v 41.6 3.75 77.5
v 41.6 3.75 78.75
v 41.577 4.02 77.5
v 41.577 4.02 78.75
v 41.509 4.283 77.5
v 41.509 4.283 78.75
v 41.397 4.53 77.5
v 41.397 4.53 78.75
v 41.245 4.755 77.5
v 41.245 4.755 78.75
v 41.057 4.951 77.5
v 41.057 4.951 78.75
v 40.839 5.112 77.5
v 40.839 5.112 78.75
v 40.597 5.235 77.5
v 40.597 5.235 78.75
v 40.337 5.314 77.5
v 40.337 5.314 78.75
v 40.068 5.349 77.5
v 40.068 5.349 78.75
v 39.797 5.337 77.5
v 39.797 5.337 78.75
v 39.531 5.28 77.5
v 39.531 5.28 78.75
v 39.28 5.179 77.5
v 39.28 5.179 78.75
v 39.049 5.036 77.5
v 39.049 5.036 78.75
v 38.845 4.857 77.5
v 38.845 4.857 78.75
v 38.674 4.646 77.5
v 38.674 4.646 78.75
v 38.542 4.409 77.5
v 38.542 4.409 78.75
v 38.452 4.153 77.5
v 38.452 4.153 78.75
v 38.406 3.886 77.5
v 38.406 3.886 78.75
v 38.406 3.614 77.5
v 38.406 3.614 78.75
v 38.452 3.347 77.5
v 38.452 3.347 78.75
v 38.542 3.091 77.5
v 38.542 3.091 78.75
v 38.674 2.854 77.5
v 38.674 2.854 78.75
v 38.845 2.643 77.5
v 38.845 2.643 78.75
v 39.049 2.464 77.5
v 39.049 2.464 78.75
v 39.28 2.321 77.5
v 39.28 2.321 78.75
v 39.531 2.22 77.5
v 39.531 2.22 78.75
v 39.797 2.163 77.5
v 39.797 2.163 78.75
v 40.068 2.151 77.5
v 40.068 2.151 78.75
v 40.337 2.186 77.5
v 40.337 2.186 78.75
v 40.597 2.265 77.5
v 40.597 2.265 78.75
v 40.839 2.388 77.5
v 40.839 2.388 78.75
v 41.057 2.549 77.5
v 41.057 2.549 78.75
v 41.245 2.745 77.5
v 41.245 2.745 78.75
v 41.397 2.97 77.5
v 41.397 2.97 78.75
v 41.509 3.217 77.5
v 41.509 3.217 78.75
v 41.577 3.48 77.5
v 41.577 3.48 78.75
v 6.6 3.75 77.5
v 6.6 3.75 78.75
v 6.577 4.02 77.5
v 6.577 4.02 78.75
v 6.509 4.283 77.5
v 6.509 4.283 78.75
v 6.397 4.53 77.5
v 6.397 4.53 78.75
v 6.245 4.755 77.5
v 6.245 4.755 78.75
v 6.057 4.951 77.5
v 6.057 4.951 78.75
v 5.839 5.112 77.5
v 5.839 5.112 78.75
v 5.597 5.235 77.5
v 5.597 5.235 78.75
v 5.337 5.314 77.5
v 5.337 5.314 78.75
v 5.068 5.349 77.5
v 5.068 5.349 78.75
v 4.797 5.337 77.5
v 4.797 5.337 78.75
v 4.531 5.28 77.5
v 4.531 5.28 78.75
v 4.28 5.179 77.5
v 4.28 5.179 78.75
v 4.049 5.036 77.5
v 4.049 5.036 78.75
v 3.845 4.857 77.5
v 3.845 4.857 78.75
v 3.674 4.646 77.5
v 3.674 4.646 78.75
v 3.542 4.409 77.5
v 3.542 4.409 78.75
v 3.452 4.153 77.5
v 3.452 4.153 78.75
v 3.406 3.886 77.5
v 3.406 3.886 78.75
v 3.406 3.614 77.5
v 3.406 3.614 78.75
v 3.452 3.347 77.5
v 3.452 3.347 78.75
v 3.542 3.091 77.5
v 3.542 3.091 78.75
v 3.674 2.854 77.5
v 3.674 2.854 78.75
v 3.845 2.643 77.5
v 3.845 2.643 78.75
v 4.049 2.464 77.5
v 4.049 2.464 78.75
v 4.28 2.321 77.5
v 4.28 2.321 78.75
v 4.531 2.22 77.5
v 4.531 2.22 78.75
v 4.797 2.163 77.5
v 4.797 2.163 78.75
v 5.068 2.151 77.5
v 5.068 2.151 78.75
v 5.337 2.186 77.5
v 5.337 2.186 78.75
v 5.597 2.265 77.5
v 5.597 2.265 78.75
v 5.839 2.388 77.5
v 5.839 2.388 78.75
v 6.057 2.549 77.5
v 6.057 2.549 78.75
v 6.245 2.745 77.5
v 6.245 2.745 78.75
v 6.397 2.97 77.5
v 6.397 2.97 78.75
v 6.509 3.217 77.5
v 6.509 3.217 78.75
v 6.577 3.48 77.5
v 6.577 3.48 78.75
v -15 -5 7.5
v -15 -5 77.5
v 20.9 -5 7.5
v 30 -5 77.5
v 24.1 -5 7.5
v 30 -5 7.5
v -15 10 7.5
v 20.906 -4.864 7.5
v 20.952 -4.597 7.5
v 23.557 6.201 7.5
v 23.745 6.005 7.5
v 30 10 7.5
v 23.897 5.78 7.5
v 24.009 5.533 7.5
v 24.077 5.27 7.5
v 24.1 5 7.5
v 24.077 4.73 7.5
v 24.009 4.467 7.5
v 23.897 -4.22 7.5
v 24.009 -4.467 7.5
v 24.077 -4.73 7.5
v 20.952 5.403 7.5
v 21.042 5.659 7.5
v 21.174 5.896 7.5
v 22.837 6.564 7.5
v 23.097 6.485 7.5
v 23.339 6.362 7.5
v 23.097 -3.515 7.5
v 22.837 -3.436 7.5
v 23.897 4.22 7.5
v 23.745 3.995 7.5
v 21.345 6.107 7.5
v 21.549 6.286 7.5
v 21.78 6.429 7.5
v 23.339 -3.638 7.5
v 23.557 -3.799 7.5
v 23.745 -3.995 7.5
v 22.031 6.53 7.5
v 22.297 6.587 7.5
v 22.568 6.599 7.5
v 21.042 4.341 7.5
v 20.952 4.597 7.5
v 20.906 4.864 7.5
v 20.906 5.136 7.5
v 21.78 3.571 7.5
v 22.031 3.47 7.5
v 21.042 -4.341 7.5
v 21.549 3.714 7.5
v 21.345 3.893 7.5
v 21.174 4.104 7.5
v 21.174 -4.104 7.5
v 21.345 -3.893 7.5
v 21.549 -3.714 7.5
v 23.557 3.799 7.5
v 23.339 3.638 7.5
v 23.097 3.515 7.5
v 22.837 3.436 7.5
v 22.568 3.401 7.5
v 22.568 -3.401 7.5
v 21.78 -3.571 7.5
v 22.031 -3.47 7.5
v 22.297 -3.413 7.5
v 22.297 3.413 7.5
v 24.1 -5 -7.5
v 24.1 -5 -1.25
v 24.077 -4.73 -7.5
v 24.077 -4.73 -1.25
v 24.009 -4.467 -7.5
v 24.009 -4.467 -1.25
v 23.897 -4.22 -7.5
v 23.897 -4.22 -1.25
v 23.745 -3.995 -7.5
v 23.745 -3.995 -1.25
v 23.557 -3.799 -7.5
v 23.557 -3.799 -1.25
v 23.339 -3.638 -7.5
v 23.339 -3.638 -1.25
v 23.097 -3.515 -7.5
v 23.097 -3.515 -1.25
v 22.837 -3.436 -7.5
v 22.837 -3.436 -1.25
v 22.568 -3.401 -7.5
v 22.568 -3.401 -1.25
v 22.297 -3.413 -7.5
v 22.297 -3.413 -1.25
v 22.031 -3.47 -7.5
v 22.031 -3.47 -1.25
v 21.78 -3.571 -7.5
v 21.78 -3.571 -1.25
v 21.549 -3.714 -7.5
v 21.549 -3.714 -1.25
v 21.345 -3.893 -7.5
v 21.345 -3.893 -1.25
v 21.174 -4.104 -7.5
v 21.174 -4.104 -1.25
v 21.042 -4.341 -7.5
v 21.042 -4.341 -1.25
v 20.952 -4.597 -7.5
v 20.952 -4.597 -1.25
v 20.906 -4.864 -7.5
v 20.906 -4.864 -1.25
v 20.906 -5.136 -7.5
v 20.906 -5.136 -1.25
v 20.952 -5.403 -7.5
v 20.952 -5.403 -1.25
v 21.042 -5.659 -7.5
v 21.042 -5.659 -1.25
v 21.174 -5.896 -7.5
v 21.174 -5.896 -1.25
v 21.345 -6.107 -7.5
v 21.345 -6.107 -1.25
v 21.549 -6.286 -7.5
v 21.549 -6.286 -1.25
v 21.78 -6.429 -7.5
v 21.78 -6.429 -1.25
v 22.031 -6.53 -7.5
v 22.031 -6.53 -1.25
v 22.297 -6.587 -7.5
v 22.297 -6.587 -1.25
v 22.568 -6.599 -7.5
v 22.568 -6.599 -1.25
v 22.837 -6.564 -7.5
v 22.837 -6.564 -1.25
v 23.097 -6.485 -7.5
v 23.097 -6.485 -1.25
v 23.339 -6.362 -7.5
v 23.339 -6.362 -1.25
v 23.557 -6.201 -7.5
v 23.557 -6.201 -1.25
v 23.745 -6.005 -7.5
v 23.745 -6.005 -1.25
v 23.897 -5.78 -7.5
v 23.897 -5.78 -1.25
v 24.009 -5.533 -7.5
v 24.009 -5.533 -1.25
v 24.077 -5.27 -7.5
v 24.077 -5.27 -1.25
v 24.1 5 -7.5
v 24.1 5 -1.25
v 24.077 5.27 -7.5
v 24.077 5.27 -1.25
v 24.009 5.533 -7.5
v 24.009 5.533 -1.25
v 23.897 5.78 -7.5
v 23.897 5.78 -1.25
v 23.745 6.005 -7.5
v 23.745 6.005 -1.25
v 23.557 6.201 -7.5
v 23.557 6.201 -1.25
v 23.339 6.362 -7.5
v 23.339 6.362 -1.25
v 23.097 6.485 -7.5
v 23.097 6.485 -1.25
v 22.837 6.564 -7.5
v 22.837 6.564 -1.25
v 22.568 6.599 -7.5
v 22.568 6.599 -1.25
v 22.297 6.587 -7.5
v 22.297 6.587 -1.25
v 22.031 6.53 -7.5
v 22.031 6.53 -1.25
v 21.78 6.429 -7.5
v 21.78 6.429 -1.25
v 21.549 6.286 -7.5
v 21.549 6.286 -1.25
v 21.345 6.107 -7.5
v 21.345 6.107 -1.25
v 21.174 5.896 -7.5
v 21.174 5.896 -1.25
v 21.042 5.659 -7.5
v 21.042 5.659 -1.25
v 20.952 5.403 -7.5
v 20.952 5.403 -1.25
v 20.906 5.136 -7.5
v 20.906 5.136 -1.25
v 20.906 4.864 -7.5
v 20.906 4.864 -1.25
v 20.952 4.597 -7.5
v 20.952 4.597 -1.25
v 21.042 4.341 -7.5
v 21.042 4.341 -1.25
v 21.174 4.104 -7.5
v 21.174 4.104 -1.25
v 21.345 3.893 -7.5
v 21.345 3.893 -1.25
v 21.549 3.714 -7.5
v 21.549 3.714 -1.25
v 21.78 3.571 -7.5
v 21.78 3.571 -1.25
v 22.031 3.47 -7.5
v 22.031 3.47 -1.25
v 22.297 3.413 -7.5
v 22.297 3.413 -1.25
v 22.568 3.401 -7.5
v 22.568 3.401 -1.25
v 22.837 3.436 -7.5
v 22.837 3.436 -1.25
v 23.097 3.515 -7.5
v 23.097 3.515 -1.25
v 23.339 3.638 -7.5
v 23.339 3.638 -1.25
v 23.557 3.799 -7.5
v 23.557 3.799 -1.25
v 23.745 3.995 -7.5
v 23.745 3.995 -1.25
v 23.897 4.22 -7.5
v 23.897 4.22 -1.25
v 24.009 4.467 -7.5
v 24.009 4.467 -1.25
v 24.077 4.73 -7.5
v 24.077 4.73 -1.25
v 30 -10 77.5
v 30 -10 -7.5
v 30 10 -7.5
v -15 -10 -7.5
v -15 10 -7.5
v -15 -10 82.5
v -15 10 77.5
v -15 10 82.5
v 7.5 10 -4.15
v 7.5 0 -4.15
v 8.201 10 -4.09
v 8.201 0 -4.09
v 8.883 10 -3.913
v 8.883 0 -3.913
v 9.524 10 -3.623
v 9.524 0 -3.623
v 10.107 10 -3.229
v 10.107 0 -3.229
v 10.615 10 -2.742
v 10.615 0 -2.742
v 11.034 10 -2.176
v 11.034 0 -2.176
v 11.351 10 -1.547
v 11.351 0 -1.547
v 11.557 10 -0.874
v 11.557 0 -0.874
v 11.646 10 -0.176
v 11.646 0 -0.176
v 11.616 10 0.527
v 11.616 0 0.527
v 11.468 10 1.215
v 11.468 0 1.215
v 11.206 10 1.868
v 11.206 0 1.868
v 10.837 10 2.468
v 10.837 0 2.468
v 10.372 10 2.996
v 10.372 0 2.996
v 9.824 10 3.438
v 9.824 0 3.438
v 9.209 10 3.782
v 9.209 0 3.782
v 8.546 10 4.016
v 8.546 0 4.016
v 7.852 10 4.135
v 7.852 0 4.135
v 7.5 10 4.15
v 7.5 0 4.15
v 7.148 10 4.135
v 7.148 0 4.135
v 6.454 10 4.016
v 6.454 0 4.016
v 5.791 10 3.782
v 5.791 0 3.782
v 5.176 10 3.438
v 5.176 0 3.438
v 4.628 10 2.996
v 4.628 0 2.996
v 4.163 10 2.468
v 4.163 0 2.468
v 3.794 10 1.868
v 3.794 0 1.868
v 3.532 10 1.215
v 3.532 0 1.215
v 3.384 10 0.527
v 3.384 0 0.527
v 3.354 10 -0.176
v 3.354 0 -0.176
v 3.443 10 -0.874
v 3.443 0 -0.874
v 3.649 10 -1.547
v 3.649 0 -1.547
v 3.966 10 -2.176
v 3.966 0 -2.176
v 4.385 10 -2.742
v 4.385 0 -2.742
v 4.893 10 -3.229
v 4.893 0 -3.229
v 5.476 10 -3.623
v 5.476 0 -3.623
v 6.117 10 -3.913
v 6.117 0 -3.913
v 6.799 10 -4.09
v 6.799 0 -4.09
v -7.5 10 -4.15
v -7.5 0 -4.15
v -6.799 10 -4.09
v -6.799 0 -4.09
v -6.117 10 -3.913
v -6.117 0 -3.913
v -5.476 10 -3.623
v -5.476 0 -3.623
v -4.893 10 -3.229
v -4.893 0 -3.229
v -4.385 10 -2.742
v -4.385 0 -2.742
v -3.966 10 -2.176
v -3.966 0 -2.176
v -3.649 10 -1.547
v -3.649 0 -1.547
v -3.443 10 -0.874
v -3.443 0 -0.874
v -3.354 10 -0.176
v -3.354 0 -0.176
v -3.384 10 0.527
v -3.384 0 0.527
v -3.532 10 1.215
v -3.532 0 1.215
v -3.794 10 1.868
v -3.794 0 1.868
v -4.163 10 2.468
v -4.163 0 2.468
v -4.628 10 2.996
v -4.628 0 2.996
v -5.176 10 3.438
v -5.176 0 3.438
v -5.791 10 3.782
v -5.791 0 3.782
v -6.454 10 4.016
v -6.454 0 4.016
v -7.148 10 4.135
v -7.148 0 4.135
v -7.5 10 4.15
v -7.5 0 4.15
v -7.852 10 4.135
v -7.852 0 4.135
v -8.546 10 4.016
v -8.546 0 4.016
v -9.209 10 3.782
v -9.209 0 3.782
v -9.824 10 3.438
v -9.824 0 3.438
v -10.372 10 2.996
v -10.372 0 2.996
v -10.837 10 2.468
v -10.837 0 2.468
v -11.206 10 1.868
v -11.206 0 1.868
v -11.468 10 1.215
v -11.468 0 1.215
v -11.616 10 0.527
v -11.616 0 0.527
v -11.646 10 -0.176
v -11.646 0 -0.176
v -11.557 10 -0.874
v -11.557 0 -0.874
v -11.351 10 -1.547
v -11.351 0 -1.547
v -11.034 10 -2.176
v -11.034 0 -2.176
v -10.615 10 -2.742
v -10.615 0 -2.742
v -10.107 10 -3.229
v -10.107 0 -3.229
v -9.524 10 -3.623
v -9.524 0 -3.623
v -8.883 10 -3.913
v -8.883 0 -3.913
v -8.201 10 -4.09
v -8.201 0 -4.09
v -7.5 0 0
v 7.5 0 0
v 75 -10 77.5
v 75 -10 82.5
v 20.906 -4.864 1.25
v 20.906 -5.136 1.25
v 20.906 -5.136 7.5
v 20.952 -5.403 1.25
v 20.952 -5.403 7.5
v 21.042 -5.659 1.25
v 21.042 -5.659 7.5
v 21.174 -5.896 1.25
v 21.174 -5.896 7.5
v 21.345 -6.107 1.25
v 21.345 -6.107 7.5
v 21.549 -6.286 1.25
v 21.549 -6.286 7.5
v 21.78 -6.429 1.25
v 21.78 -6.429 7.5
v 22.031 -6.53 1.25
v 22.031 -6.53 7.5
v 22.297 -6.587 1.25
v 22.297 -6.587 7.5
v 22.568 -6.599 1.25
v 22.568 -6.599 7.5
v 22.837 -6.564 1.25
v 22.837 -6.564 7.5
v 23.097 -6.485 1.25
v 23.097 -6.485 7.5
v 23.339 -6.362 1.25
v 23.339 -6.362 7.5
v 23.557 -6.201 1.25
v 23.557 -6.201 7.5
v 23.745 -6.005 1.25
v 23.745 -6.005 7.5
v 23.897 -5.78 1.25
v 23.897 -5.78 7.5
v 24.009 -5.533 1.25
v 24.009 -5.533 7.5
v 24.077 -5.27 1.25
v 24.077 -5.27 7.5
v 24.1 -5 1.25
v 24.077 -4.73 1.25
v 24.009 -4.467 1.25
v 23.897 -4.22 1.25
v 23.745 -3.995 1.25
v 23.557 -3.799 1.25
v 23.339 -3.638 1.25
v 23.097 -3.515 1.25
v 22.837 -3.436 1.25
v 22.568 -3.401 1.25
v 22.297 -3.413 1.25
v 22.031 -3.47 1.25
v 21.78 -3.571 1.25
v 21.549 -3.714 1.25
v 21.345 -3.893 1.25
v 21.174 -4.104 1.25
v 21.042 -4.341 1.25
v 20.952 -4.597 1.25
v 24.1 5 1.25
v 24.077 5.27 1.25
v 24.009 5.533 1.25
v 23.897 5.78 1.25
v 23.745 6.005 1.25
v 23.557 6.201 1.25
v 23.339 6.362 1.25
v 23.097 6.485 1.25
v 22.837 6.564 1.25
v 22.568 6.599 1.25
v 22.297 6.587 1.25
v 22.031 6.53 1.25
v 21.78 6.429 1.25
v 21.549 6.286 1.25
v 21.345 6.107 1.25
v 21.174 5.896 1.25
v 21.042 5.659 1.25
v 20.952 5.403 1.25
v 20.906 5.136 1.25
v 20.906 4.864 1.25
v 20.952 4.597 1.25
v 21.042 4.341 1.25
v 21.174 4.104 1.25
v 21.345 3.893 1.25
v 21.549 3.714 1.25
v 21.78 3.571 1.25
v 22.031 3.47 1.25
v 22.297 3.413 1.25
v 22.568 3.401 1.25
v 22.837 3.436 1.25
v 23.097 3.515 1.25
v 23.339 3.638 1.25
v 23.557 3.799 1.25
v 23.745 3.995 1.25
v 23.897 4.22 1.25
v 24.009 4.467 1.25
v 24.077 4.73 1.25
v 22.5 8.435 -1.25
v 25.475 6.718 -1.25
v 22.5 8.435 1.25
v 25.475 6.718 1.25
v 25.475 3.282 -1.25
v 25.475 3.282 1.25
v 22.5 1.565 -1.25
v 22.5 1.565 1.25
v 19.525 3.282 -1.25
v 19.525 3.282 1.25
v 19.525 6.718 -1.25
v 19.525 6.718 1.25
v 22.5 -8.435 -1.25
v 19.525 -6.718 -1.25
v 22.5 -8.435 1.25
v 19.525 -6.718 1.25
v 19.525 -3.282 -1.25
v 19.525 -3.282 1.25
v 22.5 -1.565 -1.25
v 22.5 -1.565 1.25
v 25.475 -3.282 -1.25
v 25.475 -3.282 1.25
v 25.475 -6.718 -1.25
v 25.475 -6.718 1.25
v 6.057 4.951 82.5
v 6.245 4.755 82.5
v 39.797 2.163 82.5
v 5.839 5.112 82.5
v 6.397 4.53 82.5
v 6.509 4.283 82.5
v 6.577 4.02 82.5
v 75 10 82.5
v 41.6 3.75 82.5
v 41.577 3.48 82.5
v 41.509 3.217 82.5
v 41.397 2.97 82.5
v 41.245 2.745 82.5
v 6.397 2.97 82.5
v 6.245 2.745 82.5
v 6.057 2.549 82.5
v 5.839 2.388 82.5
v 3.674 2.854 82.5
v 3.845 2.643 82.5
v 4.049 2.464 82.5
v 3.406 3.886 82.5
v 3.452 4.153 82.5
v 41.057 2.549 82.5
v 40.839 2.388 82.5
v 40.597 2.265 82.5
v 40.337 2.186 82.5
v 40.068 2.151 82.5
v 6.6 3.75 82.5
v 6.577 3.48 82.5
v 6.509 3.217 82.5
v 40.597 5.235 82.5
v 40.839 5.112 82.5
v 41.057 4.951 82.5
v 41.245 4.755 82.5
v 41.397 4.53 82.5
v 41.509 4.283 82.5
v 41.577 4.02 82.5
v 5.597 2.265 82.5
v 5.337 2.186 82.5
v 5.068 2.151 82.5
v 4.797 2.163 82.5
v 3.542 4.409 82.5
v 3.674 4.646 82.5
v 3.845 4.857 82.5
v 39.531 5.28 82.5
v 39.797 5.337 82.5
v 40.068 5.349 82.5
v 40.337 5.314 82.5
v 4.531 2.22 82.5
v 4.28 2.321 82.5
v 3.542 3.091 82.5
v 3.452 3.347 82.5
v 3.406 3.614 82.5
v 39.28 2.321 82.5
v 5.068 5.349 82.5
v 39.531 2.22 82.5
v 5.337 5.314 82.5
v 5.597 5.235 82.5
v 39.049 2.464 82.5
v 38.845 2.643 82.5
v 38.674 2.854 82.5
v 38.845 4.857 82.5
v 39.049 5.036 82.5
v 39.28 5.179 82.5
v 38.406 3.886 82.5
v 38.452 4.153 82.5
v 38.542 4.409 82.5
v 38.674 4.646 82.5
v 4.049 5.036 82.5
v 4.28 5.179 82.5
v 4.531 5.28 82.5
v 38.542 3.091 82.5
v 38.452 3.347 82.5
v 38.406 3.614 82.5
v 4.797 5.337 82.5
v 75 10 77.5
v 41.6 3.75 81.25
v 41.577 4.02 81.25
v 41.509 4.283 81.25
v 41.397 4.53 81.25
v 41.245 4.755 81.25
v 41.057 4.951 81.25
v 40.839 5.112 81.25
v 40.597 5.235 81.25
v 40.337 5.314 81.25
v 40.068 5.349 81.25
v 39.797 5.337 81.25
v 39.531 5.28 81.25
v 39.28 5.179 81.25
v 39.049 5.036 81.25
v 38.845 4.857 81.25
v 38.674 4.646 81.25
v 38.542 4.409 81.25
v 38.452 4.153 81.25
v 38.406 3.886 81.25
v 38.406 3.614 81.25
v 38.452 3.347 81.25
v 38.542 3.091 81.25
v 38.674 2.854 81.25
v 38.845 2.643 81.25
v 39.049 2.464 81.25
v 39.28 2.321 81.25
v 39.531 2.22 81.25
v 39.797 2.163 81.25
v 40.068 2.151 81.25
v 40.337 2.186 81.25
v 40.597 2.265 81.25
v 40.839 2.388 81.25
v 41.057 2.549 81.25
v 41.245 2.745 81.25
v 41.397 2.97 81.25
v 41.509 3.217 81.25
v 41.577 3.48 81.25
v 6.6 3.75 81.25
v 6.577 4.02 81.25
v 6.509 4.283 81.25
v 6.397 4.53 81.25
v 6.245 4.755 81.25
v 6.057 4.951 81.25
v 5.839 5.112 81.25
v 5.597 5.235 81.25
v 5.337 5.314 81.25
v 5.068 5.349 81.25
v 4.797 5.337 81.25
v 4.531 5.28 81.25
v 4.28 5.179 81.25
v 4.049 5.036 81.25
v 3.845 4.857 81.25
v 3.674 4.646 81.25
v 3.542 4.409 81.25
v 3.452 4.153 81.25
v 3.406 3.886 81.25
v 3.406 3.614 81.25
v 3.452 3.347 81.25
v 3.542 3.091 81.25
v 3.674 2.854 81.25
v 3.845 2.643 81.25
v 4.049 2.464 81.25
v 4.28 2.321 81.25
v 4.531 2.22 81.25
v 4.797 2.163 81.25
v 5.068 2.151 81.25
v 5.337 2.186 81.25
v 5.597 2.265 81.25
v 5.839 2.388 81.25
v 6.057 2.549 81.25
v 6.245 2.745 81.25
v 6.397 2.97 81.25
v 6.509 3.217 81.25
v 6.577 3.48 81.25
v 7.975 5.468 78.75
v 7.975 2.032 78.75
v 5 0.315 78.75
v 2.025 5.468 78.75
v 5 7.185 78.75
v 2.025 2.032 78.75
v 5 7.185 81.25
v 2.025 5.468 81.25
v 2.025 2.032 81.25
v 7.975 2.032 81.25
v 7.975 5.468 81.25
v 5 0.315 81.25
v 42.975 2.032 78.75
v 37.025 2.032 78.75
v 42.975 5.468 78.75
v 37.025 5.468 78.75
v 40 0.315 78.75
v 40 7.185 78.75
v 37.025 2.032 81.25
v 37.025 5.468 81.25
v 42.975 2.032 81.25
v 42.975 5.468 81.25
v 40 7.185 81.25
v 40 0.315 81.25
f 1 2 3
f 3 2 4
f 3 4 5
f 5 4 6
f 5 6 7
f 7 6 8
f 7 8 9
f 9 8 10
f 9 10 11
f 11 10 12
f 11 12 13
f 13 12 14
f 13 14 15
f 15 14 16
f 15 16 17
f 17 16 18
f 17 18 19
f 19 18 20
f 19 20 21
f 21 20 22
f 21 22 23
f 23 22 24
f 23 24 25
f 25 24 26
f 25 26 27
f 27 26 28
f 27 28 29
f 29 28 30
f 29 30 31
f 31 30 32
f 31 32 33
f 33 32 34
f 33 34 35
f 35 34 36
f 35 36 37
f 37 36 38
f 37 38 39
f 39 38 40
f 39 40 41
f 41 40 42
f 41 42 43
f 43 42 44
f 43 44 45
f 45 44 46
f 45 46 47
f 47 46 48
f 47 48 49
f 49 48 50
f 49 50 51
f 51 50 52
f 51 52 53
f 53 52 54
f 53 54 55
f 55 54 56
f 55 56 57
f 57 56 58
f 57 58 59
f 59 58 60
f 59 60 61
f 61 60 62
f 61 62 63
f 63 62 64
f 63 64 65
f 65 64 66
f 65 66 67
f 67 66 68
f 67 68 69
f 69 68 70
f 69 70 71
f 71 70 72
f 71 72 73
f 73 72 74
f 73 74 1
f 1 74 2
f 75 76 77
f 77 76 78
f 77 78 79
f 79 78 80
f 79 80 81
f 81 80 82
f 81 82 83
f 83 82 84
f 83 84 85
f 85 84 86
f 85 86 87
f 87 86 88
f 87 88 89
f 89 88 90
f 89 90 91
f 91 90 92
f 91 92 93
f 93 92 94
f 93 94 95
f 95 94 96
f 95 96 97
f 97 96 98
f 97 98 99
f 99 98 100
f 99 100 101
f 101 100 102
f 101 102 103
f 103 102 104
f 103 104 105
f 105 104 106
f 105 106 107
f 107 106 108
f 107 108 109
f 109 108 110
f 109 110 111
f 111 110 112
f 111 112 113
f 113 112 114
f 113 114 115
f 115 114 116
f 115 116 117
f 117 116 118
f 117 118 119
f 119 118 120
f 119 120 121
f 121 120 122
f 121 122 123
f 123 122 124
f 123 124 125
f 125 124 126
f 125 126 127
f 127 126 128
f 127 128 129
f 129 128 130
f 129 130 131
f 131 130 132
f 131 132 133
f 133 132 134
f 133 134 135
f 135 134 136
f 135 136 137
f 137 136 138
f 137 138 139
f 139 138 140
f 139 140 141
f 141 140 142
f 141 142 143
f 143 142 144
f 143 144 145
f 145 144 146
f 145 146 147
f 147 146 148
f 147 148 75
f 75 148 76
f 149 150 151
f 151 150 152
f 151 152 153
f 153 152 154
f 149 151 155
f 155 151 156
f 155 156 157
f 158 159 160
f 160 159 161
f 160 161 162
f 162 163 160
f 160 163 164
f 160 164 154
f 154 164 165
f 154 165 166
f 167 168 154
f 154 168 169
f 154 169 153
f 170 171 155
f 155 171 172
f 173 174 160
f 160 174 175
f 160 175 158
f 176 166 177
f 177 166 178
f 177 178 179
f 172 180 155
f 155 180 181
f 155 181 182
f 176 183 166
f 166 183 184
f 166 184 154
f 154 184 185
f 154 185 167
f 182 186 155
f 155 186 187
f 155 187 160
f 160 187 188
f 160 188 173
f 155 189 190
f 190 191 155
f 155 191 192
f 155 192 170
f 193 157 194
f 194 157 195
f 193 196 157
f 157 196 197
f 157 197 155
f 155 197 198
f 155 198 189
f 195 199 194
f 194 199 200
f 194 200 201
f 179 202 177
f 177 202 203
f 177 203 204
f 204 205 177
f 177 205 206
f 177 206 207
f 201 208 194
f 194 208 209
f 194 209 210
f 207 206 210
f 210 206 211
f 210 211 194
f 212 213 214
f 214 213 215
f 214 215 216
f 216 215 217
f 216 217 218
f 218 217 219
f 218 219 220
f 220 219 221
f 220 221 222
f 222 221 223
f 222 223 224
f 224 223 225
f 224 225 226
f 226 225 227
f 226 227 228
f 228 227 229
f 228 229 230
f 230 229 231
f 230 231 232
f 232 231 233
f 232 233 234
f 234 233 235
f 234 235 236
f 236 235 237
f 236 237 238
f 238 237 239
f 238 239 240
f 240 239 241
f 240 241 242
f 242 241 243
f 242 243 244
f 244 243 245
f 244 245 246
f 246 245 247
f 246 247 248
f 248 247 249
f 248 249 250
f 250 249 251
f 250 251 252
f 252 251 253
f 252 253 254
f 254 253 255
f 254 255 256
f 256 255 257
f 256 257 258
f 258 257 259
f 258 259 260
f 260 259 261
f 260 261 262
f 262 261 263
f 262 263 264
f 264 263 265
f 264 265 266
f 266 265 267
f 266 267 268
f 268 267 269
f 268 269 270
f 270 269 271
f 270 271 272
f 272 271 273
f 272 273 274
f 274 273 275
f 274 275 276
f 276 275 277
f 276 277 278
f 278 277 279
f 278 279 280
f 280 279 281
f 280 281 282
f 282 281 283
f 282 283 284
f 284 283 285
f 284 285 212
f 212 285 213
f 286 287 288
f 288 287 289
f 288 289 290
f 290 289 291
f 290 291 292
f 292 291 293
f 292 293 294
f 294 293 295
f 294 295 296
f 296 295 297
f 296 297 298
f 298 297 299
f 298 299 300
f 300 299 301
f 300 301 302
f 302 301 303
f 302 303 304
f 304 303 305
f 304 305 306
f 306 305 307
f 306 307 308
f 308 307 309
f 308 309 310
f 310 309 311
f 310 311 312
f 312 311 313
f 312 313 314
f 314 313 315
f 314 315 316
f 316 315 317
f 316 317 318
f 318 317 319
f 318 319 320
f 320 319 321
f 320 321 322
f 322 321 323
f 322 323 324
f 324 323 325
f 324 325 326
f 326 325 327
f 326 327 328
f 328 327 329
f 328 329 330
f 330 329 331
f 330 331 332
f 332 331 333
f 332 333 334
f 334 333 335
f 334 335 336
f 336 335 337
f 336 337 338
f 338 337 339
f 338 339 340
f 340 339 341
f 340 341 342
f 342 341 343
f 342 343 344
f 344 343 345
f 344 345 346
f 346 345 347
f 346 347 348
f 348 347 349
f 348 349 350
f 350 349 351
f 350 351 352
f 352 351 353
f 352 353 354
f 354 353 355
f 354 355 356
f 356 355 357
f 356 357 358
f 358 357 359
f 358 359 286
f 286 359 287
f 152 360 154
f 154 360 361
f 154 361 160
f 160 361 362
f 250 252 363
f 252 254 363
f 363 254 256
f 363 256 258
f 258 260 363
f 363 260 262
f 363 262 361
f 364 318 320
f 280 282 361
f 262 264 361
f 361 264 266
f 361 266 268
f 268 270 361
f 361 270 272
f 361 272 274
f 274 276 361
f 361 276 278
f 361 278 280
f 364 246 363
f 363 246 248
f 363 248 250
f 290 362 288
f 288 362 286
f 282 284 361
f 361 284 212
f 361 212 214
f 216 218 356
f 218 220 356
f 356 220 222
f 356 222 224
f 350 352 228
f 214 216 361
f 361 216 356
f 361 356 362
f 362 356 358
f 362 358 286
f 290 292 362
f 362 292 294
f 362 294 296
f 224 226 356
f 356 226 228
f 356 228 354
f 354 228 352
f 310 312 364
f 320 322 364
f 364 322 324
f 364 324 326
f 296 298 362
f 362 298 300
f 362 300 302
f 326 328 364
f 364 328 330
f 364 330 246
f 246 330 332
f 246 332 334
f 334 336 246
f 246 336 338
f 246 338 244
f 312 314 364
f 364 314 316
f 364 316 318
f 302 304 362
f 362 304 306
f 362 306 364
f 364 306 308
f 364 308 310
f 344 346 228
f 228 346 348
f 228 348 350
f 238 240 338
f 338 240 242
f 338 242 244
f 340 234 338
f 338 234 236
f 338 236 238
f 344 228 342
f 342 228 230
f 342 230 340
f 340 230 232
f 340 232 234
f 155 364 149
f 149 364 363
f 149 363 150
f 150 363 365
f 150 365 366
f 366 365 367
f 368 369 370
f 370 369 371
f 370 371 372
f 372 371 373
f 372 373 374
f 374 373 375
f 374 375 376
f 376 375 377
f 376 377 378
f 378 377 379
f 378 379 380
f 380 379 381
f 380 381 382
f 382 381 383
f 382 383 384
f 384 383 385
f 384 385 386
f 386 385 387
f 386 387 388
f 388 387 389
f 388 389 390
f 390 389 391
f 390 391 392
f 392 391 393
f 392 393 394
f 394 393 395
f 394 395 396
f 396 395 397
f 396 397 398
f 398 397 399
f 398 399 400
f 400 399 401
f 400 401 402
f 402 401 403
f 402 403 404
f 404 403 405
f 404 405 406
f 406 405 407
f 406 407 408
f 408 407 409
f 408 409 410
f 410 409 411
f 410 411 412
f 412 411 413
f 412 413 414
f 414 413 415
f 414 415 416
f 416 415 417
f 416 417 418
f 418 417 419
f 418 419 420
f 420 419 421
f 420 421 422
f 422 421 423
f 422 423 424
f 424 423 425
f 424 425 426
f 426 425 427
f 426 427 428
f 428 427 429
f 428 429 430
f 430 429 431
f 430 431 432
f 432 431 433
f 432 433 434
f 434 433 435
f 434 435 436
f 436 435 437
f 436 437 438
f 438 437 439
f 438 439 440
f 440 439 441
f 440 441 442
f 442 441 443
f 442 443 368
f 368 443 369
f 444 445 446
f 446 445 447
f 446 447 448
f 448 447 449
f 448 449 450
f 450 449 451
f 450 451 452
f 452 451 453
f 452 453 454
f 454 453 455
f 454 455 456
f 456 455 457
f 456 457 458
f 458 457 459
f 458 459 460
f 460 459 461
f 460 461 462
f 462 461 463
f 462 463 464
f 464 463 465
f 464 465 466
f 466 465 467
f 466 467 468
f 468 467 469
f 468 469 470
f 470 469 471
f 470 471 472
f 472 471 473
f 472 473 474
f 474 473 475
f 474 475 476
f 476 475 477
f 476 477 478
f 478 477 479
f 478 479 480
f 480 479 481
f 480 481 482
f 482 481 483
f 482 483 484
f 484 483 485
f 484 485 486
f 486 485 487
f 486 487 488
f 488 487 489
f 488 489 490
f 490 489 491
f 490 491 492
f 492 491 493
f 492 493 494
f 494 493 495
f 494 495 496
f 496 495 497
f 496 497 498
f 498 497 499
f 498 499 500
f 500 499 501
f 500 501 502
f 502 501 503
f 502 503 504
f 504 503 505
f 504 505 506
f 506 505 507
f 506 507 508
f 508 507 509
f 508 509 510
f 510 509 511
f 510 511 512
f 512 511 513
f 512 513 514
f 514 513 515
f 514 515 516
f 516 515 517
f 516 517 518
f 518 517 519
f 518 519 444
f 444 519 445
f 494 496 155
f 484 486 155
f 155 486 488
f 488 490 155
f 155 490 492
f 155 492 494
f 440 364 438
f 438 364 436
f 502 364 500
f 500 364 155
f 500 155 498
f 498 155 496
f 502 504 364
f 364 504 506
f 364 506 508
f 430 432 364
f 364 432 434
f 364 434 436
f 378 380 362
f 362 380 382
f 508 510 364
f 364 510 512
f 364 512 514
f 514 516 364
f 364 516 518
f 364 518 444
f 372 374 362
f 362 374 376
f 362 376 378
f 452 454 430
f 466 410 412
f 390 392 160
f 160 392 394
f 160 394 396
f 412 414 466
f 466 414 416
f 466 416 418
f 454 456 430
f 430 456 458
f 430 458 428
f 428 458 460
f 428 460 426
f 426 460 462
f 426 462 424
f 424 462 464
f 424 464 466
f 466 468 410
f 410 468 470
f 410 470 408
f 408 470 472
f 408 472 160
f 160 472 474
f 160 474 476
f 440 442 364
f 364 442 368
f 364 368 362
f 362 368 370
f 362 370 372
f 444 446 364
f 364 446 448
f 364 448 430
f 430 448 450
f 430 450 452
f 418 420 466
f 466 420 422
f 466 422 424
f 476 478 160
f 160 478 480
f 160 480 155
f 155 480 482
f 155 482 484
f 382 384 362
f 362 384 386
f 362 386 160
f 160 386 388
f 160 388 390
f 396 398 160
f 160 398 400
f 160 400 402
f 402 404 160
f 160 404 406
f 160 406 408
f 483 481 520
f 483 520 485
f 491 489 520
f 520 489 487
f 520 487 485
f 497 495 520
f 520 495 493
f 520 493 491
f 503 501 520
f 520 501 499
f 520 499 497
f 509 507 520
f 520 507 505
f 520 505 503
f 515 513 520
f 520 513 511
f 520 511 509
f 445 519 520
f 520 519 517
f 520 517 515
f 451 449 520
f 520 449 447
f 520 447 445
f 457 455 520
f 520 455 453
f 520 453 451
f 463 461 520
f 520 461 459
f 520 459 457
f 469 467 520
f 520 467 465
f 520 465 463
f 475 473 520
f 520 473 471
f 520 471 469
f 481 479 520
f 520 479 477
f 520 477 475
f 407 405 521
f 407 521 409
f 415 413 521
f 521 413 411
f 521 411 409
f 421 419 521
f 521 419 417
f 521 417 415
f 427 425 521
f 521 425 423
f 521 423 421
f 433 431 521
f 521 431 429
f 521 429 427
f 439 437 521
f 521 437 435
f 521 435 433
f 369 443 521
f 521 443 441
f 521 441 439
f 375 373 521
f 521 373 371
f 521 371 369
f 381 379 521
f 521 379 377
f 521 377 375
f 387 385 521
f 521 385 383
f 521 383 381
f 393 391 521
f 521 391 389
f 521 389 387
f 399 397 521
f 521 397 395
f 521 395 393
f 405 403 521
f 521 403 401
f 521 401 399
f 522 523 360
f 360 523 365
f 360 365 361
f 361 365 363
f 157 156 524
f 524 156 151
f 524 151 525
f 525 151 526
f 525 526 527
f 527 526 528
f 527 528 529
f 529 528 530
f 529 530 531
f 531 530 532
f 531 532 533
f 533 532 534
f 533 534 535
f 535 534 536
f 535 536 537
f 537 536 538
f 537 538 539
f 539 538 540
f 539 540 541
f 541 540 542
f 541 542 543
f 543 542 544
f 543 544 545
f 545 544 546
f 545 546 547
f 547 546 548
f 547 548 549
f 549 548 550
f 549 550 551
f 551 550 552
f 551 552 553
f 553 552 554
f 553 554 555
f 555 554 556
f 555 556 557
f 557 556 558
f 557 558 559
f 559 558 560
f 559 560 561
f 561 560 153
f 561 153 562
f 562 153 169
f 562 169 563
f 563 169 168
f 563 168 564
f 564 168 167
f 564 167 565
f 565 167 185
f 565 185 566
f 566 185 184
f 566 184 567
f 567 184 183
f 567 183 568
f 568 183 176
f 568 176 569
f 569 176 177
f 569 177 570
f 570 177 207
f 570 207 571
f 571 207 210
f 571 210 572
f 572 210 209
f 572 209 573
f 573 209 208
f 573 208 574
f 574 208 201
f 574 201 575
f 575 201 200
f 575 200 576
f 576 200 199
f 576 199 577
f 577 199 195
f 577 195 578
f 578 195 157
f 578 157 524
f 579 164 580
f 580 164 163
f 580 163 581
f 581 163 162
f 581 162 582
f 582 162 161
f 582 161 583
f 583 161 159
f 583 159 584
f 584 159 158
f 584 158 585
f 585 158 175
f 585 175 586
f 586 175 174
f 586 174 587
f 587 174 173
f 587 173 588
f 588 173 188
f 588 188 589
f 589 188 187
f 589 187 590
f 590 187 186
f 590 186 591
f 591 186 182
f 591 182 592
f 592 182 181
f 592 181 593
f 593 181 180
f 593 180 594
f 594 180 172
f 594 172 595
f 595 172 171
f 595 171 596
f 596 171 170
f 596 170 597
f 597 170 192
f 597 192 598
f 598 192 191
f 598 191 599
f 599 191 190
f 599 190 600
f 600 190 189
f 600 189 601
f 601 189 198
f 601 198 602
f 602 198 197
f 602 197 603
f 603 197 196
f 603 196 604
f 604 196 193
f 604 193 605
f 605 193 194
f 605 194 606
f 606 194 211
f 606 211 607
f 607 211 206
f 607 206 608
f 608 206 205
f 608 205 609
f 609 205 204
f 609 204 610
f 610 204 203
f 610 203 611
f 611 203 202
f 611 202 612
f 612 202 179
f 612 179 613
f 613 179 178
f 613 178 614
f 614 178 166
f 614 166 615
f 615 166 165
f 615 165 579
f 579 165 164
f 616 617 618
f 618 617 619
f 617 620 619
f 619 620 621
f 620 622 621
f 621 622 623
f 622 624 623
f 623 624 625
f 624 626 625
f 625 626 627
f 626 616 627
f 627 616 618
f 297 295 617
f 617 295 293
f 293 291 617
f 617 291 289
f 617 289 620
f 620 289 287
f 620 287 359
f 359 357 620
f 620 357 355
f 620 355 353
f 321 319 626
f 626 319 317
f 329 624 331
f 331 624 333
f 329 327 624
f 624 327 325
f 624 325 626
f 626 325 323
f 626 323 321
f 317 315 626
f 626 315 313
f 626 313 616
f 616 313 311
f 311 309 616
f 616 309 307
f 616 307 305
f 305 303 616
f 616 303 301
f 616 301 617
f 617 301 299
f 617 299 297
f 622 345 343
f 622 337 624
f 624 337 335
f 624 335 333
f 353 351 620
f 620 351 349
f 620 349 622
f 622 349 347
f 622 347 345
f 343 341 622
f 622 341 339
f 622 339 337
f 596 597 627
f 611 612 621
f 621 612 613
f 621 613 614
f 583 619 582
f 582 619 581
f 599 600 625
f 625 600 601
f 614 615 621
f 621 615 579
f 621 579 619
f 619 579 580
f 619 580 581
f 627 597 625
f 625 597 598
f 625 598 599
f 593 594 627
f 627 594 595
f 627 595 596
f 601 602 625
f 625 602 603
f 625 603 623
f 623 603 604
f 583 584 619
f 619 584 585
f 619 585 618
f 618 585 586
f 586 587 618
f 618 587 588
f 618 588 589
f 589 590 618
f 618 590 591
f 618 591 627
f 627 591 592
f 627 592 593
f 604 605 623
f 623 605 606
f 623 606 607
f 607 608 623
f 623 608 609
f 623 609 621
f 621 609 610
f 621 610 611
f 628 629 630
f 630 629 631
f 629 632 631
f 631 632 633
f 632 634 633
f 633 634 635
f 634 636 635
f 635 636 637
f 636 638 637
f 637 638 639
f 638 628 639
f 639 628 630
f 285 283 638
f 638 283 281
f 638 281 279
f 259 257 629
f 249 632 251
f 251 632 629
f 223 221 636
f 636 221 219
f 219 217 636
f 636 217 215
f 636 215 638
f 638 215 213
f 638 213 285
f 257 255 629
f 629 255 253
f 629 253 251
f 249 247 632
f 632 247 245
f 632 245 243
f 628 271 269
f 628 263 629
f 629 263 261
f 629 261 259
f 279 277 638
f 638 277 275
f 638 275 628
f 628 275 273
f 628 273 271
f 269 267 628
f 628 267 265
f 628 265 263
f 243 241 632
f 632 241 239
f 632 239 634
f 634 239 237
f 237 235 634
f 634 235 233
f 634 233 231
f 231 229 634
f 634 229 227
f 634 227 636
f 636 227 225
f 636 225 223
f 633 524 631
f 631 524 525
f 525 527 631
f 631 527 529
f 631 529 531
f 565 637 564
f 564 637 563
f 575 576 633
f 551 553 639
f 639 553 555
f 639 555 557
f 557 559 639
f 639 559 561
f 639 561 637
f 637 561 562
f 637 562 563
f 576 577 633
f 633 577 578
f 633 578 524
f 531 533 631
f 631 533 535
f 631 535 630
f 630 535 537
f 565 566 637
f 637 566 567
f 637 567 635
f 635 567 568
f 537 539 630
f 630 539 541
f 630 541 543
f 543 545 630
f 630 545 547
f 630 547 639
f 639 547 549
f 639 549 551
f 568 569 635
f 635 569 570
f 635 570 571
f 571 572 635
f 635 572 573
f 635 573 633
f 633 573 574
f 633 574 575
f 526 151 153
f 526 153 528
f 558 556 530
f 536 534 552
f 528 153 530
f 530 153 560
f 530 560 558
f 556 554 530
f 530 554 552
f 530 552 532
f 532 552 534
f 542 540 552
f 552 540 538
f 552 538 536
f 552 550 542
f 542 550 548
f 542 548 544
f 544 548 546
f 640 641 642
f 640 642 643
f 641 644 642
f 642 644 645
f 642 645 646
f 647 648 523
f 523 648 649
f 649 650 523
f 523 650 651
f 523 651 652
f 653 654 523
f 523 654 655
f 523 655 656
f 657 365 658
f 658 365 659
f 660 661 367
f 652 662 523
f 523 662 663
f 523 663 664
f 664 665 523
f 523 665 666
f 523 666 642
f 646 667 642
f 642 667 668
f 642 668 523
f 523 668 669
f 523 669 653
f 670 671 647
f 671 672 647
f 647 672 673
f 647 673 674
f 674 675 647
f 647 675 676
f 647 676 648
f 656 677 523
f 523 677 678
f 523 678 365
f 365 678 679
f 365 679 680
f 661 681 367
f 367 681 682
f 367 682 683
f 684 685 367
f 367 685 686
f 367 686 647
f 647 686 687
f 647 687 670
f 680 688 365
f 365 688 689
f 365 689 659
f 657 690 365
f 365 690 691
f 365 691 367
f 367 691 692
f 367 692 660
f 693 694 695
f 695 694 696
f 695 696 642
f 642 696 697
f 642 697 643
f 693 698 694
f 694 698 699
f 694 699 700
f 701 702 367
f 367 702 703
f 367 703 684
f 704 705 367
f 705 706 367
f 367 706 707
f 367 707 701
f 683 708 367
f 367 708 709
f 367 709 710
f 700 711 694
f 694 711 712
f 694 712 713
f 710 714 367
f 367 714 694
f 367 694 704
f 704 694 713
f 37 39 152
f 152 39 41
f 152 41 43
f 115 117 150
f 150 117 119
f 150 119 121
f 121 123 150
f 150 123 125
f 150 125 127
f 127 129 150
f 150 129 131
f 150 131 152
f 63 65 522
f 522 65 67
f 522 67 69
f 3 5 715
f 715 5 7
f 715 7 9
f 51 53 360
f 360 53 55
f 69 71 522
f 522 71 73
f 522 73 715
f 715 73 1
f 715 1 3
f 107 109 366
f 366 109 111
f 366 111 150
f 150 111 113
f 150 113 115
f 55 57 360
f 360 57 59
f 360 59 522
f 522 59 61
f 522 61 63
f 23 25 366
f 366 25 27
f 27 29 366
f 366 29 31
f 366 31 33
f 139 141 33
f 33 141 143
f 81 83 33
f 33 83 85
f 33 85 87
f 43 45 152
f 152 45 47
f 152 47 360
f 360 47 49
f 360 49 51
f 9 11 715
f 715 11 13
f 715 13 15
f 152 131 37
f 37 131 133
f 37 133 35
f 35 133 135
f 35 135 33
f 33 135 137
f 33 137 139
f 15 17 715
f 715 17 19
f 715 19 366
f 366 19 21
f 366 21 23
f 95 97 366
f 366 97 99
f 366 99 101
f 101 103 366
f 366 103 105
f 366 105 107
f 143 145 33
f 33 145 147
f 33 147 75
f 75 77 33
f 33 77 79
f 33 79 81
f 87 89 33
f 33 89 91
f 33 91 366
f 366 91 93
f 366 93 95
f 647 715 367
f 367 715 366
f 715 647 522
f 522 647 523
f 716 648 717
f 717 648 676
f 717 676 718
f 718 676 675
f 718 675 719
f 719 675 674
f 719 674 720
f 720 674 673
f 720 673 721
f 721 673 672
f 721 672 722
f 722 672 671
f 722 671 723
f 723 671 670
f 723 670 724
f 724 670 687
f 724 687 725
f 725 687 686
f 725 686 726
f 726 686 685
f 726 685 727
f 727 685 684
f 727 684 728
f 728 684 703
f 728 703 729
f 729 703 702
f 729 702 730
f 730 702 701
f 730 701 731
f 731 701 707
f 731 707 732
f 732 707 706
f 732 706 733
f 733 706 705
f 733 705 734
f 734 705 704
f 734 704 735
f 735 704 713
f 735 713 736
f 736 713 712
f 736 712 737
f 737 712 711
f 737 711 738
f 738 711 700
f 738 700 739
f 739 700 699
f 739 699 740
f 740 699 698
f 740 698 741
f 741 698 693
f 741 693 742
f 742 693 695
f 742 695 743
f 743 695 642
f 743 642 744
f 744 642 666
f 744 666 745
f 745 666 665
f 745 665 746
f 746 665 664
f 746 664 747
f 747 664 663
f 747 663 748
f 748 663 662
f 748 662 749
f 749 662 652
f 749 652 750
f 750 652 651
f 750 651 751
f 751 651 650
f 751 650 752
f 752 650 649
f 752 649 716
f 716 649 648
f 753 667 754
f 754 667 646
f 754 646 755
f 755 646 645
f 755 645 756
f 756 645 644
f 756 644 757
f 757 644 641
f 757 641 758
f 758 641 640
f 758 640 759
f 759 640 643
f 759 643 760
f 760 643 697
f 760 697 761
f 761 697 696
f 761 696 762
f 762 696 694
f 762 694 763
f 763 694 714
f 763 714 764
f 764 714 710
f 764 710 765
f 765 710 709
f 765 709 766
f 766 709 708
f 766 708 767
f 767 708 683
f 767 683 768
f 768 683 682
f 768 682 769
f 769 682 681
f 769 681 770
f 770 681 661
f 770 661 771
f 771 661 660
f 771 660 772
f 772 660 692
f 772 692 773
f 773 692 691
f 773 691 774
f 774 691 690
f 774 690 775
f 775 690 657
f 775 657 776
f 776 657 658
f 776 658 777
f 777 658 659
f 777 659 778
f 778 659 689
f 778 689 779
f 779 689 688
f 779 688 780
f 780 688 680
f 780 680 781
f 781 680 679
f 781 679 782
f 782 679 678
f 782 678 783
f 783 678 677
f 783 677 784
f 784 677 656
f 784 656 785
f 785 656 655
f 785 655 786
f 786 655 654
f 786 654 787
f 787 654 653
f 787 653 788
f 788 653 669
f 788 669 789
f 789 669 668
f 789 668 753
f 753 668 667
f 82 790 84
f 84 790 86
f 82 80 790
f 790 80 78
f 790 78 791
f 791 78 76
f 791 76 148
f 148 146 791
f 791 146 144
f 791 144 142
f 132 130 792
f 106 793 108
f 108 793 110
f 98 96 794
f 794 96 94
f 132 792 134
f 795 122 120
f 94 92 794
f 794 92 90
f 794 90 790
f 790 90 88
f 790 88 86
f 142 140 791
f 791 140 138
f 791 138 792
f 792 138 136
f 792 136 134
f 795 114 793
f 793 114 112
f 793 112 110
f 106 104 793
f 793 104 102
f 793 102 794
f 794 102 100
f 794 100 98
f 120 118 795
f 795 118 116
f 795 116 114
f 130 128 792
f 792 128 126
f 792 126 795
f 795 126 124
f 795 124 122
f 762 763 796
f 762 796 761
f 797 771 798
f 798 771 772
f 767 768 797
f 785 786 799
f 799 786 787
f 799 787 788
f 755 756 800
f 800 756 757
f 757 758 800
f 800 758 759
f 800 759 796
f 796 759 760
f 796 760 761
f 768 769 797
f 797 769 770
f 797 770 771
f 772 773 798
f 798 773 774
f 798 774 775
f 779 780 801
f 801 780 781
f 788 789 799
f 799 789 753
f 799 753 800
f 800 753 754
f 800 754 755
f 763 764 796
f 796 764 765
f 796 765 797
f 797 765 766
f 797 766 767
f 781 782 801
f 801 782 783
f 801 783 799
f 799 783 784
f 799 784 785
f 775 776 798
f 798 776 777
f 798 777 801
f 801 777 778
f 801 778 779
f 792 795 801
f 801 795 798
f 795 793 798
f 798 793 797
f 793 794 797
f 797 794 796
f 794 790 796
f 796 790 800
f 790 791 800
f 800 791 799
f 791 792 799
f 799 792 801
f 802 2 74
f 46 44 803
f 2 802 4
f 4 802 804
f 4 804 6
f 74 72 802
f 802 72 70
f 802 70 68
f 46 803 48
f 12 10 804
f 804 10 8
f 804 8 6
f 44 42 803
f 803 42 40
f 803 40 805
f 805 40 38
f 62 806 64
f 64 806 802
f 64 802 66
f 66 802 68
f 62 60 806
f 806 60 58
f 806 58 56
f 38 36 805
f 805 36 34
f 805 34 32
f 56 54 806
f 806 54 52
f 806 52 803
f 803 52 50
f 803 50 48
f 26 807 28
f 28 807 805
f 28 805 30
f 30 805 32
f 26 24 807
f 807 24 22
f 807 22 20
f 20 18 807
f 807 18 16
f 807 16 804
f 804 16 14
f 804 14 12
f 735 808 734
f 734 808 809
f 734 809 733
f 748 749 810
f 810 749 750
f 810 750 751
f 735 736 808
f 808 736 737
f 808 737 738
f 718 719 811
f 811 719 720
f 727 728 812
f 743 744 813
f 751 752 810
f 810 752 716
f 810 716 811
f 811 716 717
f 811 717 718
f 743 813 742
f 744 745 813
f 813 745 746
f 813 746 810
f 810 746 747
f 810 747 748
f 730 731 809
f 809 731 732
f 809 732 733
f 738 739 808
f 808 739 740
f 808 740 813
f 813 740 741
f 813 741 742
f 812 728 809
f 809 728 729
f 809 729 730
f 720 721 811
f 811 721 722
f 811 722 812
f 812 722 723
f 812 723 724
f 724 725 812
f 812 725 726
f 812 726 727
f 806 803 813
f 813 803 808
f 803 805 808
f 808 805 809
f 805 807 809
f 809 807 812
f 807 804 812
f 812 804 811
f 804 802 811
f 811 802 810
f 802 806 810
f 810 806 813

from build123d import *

# Parameters (mm, degrees)
SKETCH2_W           = 15
SKETCH2_H           = 15
SKETCH2_W_2         = 30
SKETCH2_R           = 4.15
BOSS_EXTRUDE1_DEPTH = 10
SKETCH2_3_W         = 15
SKETCH2_3_H         = 15
SKETCH2_3_W_2       = 30
SKETCH2_3_R         = 4.15
BOSS_EXTRUDE2_DEPTH = 10
SKETCH4_R           = 1.6
CUT_EXTRUDE1_DEPTH  = 36
CUT_EXTRUDE2_START  = -6.25
SKETCH4_3_R         = 1.6
CUT_EXTRUDE2_DEPTH  = 2.5
SKETCH5_W           = 45
SKETCH5_H           = 5
BOSS_EXTRUDE3_DEPTH = 75
SKETCH6_W           = 45
SKETCH6_H           = 5
BOSS_EXTRUDE4_DEPTH = 15
SKETCH7_W           = 5
SKETCH7_H           = 20
BOSS_EXTRUDE5_DEPTH = 45
CUT_EXTRUDE3_REACH  = 119.58
SKETCH8_R           = 1.6
CUT_EXTRUDE4_START  = -1.25
CUT_EXTRUDE4_DEPTH  = 2.5


with BuildPart() as part:
    # Sketch2 → Boss-Extrude1 (new body)
    with BuildSketch(Plane(origin=(0, 0, 0), x_dir=(1, 0, 0), z_dir=(0, 1, 0))):
        with Locations((22.5, 0)):
            Rectangle(SKETCH2_W, SKETCH2_H)
        Rectangle(SKETCH2_W_2, SKETCH2_H)
        with Locations(Location((7.5, 0, 0), (0, 0, 270))):
            Circle(SKETCH2_R, mode=Mode.SUBTRACT)
        with Locations(Location((-7.5, 0, 0), (0, 0, 270))):
            Circle(SKETCH2_R, mode=Mode.SUBTRACT)
    extrude(amount=BOSS_EXTRUDE1_DEPTH)

    # Sketch2_3 → Boss-Extrude2 (add)
    with BuildSketch(Plane(origin=(0, 0, 0), x_dir=(1, 0, 0), z_dir=(0, 1, 0))):
        with Locations((22.5, 0)):
            Rectangle(SKETCH2_3_W, SKETCH2_3_H)
        Rectangle(SKETCH2_3_W_2, SKETCH2_3_H)
        with Locations(Location((7.5, 0, 0), (0, 0, 270))):
            Circle(SKETCH2_3_R, mode=Mode.SUBTRACT)
        with Locations(Location((-7.5, 0, 0), (0, 0, 270))):
            Circle(SKETCH2_3_R, mode=Mode.SUBTRACT)
        with Locations(Location((-7.5, 0, 0), (0, 0, 270))):
            Circle(SKETCH2_3_R)
        with Locations(Location((7.5, 0, 0), (0, 0, 270))):
            Circle(SKETCH2_3_R)
    extrude(amount=-BOSS_EXTRUDE2_DEPTH)

    # Sketch4 → Cut-Extrude1 (cut, through all)
    with BuildSketch(Plane.XY.offset(7.5)):
        with Locations((22.5, 5)):
            Circle(SKETCH4_R)
        with Locations((22.5, -5)):
            Circle(SKETCH4_R)
    extrude(amount=-CUT_EXTRUDE1_DEPTH, mode=Mode.SUBTRACT)

    # Sketch4_3 → Cut-Extrude2 (cut)
    with BuildSketch(Plane.XY.offset(7.5).offset(CUT_EXTRUDE2_START)):
        Polygon((22.5, 8.435234102), (19.525, 6.717617051), (19.525, 3.282382949), (22.5, 1.564765898), (25.475, 3.282382949), (25.475, 6.717617051), align=None)
        with Locations((22.5, 5)):
            Circle(SKETCH4_3_R, mode=Mode.SUBTRACT)
        Polygon((22.5, -8.435234102), (25.475, -6.717617051), (25.475, -3.282382949), (22.5, -1.564765898), (19.525, -3.282382949), (19.525, -6.717617051), align=None)
        with Locations((22.5, -5)):
            Circle(SKETCH4_3_R, mode=Mode.SUBTRACT)
    extrude(amount=-CUT_EXTRUDE2_DEPTH, mode=Mode.SUBTRACT)

    # Sketch5 → Boss-Extrude3 (add)
    with BuildSketch(Plane.XY.offset(7.5)):
        with Locations((7.5, -7.5)):
            Rectangle(SKETCH5_W, SKETCH5_H)
    extrude(amount=BOSS_EXTRUDE3_DEPTH)

    # Sketch6 → Boss-Extrude4 (add)
    with BuildSketch(Plane(origin=(0, -5, 0), x_dir=(1, 0, 0), z_dir=(0, 1, 0))):
        with Locations((7.5, -80)):
            Rectangle(SKETCH6_W, SKETCH6_H)
    extrude(amount=BOSS_EXTRUDE4_DEPTH)

    # Sketch7 → Boss-Extrude5 (add)
    with BuildSketch(Plane(origin=(30, 0, 0), x_dir=(0, 0, -1), z_dir=(1, 0, 0))):
        with Locations((-80, 0)):
            Rectangle(SKETCH7_W, SKETCH7_H)
    extrude(amount=BOSS_EXTRUDE5_DEPTH)

    # Sketch8 → Cut-Extrude3 (cut, up to next)
    with BuildSketch(Plane.XY.offset(82.5), mode=Mode.PRIVATE) as cut_extrude3_sk1:
        with Locations((5, 3.75)):
            Circle(SKETCH8_R)
    cut_extrude3_tool1 = extrude(cut_extrude3_sk1.sketch, amount=-CUT_EXTRUDE3_REACH, mode=Mode.PRIVATE) & part.part
    # Sketch8 → Cut-Extrude3 (cut, up to next)
    with BuildSketch(Plane.XY.offset(82.5), mode=Mode.PRIVATE) as cut_extrude3_sk2:
        with Locations((40, 3.75)):
            Circle(SKETCH8_R)
    cut_extrude3_tool2 = extrude(cut_extrude3_sk2.sketch, amount=-CUT_EXTRUDE3_REACH, mode=Mode.PRIVATE) & part.part
    add(cut_extrude3_tool1.solids().sort_by_distance((5, 3.75, 82.5))[0], mode=Mode.SUBTRACT)
    add(cut_extrude3_tool2.solids().sort_by_distance((40, 3.75, 82.5))[0], mode=Mode.SUBTRACT)

    # Sketch9 → Cut-Extrude4 (cut)
    with BuildSketch(Plane.XY.offset(82.5).offset(CUT_EXTRUDE4_START)):
        Polygon((5, 0.314765898), (7.975, 2.032382949), (7.975, 5.467617051), (5, 7.185234102), (2.025, 5.467617051), (2.025, 2.032382949), align=None)
        Polygon((40, 0.314765898), (42.975, 2.032382949), (42.975, 5.467617051), (40, 7.185234102), (37.025, 5.467617051), (37.025, 2.032382949), align=None)
    extrude(amount=-CUT_EXTRUDE4_DEPTH, mode=Mode.SUBTRACT)


solid = part.part
